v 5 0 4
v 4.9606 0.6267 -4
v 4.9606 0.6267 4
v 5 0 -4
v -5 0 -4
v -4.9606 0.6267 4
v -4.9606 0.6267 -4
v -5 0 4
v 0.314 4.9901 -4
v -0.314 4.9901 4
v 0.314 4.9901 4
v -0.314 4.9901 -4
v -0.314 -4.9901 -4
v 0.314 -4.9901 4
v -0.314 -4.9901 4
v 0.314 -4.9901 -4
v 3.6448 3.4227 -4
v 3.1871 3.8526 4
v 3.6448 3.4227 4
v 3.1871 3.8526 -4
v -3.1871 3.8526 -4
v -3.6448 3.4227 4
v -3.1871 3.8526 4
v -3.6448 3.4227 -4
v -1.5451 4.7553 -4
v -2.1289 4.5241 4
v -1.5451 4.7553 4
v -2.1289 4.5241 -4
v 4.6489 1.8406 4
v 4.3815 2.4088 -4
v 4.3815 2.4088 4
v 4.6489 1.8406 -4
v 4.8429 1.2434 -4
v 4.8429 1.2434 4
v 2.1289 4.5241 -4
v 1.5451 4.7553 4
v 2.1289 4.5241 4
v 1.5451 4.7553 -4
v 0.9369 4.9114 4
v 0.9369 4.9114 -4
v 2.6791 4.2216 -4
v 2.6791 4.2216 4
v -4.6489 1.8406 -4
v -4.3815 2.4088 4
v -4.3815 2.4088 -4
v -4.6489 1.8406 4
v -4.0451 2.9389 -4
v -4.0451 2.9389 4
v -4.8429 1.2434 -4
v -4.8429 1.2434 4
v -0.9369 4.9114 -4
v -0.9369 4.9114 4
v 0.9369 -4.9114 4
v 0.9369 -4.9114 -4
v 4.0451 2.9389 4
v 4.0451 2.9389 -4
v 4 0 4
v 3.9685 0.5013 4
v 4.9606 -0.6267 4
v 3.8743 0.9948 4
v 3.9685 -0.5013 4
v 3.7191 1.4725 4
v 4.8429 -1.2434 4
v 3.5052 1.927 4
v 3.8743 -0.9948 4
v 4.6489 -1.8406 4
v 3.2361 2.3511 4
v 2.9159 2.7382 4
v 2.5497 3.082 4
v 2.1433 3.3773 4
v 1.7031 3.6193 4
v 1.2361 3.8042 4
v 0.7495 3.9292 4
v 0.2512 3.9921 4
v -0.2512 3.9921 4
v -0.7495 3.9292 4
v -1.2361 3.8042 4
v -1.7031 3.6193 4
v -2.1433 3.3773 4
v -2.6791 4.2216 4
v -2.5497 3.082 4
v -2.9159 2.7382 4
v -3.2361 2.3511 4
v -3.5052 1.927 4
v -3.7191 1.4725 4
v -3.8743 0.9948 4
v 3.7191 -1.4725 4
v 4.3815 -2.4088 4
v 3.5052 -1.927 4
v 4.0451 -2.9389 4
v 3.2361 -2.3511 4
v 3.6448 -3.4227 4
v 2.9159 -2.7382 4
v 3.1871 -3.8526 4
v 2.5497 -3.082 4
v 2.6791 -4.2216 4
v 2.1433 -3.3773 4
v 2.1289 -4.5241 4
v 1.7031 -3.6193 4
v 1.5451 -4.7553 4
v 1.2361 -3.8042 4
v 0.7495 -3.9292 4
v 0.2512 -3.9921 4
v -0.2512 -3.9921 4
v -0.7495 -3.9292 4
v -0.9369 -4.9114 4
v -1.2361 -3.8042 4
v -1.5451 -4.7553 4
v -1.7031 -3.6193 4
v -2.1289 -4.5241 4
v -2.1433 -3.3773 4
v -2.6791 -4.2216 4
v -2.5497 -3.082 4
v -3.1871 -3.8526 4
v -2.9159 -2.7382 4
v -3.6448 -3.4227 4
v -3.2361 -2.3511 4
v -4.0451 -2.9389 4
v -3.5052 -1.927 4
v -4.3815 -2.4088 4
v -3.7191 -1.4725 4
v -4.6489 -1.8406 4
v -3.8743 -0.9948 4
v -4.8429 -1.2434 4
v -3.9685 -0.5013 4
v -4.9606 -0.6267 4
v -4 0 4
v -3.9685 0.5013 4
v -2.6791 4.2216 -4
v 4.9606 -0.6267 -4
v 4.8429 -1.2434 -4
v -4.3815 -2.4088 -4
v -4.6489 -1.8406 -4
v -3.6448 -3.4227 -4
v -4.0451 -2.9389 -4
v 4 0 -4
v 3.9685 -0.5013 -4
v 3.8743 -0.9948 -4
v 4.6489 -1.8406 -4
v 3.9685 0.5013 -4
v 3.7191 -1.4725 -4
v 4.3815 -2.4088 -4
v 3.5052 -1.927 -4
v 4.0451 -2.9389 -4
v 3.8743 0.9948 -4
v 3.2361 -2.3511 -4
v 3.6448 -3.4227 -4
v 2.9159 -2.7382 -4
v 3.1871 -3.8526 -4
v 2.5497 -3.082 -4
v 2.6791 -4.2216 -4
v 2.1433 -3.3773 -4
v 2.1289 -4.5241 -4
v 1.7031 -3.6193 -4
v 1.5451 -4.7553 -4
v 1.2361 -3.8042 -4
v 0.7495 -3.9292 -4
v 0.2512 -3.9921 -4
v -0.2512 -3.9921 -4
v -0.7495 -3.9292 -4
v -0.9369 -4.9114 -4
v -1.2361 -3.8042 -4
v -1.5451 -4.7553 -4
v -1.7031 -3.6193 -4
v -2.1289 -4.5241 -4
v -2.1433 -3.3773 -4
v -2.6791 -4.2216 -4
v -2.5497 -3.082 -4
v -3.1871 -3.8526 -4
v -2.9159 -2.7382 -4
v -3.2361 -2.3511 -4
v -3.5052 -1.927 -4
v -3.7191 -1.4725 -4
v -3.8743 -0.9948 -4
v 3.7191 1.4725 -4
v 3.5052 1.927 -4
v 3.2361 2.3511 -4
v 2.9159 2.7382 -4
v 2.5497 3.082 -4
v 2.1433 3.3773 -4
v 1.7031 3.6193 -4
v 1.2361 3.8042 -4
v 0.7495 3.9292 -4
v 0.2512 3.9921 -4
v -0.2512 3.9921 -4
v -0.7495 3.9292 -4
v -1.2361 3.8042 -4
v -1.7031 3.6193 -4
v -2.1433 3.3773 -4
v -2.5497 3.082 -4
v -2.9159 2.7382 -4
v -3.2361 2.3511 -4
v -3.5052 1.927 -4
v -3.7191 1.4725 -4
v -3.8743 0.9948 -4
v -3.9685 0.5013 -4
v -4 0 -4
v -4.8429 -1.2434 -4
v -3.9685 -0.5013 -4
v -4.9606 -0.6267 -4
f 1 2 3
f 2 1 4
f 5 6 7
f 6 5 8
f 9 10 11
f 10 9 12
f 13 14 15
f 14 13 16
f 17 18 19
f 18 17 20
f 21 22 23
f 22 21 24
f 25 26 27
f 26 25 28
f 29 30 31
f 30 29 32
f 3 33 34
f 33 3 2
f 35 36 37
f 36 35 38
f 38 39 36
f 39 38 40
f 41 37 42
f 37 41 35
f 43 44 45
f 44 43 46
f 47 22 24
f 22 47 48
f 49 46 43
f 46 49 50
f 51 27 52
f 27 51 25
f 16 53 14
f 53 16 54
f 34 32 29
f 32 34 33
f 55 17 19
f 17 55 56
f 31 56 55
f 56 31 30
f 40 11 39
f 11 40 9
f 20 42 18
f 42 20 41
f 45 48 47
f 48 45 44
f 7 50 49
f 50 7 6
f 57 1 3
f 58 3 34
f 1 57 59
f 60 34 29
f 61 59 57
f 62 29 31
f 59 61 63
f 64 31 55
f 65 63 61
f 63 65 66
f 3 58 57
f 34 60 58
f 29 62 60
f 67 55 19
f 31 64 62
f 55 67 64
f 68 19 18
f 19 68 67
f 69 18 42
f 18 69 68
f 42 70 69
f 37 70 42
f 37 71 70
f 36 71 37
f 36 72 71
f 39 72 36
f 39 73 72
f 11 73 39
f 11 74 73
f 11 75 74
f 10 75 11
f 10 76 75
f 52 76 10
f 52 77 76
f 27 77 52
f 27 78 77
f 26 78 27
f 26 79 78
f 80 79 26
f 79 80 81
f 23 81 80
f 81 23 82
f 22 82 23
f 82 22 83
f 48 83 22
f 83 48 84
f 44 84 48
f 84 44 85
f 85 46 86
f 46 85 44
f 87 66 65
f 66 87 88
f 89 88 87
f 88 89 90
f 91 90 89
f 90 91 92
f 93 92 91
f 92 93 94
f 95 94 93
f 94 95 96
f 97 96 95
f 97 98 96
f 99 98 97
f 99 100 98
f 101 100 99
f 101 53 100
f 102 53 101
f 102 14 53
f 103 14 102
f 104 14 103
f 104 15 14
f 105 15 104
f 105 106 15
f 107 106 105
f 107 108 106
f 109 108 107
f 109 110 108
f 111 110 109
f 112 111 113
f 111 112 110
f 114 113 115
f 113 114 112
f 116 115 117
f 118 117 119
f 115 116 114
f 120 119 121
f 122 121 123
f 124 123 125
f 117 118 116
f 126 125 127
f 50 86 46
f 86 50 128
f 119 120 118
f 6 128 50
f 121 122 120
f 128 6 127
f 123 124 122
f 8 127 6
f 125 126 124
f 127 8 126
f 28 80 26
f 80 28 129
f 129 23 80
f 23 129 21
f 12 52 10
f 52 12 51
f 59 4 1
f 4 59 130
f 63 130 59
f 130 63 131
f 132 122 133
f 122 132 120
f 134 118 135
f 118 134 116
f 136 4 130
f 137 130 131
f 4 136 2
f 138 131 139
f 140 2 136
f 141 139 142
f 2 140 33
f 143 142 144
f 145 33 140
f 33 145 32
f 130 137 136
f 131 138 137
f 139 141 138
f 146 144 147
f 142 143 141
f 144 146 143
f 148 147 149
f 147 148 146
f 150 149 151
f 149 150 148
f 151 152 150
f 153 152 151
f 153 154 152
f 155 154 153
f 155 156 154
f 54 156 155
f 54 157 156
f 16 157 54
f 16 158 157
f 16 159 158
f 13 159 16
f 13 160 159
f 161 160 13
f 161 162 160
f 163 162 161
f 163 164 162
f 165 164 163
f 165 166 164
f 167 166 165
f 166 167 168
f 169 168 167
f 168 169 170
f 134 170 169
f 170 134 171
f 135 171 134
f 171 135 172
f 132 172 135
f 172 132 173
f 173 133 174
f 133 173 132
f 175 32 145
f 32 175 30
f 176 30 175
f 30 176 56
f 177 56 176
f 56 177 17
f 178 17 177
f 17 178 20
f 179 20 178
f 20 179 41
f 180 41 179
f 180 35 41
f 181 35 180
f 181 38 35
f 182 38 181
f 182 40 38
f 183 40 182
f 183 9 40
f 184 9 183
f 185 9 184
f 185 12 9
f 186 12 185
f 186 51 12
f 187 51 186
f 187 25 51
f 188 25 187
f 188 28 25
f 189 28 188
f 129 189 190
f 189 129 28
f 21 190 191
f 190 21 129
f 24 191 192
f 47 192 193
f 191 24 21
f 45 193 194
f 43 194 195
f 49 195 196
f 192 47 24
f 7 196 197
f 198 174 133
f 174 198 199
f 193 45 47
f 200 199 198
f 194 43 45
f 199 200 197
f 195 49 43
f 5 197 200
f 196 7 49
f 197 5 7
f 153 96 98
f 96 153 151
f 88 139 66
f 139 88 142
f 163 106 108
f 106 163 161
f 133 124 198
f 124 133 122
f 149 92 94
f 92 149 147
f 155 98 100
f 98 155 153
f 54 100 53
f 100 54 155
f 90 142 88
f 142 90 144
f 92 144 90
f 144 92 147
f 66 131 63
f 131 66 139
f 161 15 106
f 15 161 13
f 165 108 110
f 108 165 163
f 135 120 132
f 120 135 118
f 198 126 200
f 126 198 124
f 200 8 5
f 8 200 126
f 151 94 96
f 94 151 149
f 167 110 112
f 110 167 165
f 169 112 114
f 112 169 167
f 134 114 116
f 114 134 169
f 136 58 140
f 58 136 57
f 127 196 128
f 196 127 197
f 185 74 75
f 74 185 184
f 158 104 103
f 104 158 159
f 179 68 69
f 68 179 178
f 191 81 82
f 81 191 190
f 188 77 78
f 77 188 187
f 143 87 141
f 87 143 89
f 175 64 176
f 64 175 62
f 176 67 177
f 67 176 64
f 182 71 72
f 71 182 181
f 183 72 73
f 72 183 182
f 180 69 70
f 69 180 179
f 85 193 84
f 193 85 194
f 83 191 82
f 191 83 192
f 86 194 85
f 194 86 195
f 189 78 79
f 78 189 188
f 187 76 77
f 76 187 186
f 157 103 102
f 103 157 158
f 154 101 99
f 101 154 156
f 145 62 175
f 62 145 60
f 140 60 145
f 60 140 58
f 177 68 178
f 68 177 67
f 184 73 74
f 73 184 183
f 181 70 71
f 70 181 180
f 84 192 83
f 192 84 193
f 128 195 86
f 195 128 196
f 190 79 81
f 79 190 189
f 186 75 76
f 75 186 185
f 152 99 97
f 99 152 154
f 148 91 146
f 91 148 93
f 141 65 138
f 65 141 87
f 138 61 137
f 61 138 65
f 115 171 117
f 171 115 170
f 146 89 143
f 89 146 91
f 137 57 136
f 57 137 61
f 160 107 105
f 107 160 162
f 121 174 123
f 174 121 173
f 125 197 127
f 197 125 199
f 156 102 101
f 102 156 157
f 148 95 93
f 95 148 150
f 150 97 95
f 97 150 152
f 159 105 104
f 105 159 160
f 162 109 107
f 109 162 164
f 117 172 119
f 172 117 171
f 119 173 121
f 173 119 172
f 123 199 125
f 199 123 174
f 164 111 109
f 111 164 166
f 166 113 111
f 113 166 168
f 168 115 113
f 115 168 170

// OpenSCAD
$fn = 50;


difference() {
	union() {
		translate(v = [0, 0, -4.0000000000]) {
			cylinder(h = 8, r = 5.0000000000);
		}
	}
	union() {
		translate(v = [0, 0, -100.0000000000]) {
			cylinder(h = 200, r = 4);
		}
	}
}
